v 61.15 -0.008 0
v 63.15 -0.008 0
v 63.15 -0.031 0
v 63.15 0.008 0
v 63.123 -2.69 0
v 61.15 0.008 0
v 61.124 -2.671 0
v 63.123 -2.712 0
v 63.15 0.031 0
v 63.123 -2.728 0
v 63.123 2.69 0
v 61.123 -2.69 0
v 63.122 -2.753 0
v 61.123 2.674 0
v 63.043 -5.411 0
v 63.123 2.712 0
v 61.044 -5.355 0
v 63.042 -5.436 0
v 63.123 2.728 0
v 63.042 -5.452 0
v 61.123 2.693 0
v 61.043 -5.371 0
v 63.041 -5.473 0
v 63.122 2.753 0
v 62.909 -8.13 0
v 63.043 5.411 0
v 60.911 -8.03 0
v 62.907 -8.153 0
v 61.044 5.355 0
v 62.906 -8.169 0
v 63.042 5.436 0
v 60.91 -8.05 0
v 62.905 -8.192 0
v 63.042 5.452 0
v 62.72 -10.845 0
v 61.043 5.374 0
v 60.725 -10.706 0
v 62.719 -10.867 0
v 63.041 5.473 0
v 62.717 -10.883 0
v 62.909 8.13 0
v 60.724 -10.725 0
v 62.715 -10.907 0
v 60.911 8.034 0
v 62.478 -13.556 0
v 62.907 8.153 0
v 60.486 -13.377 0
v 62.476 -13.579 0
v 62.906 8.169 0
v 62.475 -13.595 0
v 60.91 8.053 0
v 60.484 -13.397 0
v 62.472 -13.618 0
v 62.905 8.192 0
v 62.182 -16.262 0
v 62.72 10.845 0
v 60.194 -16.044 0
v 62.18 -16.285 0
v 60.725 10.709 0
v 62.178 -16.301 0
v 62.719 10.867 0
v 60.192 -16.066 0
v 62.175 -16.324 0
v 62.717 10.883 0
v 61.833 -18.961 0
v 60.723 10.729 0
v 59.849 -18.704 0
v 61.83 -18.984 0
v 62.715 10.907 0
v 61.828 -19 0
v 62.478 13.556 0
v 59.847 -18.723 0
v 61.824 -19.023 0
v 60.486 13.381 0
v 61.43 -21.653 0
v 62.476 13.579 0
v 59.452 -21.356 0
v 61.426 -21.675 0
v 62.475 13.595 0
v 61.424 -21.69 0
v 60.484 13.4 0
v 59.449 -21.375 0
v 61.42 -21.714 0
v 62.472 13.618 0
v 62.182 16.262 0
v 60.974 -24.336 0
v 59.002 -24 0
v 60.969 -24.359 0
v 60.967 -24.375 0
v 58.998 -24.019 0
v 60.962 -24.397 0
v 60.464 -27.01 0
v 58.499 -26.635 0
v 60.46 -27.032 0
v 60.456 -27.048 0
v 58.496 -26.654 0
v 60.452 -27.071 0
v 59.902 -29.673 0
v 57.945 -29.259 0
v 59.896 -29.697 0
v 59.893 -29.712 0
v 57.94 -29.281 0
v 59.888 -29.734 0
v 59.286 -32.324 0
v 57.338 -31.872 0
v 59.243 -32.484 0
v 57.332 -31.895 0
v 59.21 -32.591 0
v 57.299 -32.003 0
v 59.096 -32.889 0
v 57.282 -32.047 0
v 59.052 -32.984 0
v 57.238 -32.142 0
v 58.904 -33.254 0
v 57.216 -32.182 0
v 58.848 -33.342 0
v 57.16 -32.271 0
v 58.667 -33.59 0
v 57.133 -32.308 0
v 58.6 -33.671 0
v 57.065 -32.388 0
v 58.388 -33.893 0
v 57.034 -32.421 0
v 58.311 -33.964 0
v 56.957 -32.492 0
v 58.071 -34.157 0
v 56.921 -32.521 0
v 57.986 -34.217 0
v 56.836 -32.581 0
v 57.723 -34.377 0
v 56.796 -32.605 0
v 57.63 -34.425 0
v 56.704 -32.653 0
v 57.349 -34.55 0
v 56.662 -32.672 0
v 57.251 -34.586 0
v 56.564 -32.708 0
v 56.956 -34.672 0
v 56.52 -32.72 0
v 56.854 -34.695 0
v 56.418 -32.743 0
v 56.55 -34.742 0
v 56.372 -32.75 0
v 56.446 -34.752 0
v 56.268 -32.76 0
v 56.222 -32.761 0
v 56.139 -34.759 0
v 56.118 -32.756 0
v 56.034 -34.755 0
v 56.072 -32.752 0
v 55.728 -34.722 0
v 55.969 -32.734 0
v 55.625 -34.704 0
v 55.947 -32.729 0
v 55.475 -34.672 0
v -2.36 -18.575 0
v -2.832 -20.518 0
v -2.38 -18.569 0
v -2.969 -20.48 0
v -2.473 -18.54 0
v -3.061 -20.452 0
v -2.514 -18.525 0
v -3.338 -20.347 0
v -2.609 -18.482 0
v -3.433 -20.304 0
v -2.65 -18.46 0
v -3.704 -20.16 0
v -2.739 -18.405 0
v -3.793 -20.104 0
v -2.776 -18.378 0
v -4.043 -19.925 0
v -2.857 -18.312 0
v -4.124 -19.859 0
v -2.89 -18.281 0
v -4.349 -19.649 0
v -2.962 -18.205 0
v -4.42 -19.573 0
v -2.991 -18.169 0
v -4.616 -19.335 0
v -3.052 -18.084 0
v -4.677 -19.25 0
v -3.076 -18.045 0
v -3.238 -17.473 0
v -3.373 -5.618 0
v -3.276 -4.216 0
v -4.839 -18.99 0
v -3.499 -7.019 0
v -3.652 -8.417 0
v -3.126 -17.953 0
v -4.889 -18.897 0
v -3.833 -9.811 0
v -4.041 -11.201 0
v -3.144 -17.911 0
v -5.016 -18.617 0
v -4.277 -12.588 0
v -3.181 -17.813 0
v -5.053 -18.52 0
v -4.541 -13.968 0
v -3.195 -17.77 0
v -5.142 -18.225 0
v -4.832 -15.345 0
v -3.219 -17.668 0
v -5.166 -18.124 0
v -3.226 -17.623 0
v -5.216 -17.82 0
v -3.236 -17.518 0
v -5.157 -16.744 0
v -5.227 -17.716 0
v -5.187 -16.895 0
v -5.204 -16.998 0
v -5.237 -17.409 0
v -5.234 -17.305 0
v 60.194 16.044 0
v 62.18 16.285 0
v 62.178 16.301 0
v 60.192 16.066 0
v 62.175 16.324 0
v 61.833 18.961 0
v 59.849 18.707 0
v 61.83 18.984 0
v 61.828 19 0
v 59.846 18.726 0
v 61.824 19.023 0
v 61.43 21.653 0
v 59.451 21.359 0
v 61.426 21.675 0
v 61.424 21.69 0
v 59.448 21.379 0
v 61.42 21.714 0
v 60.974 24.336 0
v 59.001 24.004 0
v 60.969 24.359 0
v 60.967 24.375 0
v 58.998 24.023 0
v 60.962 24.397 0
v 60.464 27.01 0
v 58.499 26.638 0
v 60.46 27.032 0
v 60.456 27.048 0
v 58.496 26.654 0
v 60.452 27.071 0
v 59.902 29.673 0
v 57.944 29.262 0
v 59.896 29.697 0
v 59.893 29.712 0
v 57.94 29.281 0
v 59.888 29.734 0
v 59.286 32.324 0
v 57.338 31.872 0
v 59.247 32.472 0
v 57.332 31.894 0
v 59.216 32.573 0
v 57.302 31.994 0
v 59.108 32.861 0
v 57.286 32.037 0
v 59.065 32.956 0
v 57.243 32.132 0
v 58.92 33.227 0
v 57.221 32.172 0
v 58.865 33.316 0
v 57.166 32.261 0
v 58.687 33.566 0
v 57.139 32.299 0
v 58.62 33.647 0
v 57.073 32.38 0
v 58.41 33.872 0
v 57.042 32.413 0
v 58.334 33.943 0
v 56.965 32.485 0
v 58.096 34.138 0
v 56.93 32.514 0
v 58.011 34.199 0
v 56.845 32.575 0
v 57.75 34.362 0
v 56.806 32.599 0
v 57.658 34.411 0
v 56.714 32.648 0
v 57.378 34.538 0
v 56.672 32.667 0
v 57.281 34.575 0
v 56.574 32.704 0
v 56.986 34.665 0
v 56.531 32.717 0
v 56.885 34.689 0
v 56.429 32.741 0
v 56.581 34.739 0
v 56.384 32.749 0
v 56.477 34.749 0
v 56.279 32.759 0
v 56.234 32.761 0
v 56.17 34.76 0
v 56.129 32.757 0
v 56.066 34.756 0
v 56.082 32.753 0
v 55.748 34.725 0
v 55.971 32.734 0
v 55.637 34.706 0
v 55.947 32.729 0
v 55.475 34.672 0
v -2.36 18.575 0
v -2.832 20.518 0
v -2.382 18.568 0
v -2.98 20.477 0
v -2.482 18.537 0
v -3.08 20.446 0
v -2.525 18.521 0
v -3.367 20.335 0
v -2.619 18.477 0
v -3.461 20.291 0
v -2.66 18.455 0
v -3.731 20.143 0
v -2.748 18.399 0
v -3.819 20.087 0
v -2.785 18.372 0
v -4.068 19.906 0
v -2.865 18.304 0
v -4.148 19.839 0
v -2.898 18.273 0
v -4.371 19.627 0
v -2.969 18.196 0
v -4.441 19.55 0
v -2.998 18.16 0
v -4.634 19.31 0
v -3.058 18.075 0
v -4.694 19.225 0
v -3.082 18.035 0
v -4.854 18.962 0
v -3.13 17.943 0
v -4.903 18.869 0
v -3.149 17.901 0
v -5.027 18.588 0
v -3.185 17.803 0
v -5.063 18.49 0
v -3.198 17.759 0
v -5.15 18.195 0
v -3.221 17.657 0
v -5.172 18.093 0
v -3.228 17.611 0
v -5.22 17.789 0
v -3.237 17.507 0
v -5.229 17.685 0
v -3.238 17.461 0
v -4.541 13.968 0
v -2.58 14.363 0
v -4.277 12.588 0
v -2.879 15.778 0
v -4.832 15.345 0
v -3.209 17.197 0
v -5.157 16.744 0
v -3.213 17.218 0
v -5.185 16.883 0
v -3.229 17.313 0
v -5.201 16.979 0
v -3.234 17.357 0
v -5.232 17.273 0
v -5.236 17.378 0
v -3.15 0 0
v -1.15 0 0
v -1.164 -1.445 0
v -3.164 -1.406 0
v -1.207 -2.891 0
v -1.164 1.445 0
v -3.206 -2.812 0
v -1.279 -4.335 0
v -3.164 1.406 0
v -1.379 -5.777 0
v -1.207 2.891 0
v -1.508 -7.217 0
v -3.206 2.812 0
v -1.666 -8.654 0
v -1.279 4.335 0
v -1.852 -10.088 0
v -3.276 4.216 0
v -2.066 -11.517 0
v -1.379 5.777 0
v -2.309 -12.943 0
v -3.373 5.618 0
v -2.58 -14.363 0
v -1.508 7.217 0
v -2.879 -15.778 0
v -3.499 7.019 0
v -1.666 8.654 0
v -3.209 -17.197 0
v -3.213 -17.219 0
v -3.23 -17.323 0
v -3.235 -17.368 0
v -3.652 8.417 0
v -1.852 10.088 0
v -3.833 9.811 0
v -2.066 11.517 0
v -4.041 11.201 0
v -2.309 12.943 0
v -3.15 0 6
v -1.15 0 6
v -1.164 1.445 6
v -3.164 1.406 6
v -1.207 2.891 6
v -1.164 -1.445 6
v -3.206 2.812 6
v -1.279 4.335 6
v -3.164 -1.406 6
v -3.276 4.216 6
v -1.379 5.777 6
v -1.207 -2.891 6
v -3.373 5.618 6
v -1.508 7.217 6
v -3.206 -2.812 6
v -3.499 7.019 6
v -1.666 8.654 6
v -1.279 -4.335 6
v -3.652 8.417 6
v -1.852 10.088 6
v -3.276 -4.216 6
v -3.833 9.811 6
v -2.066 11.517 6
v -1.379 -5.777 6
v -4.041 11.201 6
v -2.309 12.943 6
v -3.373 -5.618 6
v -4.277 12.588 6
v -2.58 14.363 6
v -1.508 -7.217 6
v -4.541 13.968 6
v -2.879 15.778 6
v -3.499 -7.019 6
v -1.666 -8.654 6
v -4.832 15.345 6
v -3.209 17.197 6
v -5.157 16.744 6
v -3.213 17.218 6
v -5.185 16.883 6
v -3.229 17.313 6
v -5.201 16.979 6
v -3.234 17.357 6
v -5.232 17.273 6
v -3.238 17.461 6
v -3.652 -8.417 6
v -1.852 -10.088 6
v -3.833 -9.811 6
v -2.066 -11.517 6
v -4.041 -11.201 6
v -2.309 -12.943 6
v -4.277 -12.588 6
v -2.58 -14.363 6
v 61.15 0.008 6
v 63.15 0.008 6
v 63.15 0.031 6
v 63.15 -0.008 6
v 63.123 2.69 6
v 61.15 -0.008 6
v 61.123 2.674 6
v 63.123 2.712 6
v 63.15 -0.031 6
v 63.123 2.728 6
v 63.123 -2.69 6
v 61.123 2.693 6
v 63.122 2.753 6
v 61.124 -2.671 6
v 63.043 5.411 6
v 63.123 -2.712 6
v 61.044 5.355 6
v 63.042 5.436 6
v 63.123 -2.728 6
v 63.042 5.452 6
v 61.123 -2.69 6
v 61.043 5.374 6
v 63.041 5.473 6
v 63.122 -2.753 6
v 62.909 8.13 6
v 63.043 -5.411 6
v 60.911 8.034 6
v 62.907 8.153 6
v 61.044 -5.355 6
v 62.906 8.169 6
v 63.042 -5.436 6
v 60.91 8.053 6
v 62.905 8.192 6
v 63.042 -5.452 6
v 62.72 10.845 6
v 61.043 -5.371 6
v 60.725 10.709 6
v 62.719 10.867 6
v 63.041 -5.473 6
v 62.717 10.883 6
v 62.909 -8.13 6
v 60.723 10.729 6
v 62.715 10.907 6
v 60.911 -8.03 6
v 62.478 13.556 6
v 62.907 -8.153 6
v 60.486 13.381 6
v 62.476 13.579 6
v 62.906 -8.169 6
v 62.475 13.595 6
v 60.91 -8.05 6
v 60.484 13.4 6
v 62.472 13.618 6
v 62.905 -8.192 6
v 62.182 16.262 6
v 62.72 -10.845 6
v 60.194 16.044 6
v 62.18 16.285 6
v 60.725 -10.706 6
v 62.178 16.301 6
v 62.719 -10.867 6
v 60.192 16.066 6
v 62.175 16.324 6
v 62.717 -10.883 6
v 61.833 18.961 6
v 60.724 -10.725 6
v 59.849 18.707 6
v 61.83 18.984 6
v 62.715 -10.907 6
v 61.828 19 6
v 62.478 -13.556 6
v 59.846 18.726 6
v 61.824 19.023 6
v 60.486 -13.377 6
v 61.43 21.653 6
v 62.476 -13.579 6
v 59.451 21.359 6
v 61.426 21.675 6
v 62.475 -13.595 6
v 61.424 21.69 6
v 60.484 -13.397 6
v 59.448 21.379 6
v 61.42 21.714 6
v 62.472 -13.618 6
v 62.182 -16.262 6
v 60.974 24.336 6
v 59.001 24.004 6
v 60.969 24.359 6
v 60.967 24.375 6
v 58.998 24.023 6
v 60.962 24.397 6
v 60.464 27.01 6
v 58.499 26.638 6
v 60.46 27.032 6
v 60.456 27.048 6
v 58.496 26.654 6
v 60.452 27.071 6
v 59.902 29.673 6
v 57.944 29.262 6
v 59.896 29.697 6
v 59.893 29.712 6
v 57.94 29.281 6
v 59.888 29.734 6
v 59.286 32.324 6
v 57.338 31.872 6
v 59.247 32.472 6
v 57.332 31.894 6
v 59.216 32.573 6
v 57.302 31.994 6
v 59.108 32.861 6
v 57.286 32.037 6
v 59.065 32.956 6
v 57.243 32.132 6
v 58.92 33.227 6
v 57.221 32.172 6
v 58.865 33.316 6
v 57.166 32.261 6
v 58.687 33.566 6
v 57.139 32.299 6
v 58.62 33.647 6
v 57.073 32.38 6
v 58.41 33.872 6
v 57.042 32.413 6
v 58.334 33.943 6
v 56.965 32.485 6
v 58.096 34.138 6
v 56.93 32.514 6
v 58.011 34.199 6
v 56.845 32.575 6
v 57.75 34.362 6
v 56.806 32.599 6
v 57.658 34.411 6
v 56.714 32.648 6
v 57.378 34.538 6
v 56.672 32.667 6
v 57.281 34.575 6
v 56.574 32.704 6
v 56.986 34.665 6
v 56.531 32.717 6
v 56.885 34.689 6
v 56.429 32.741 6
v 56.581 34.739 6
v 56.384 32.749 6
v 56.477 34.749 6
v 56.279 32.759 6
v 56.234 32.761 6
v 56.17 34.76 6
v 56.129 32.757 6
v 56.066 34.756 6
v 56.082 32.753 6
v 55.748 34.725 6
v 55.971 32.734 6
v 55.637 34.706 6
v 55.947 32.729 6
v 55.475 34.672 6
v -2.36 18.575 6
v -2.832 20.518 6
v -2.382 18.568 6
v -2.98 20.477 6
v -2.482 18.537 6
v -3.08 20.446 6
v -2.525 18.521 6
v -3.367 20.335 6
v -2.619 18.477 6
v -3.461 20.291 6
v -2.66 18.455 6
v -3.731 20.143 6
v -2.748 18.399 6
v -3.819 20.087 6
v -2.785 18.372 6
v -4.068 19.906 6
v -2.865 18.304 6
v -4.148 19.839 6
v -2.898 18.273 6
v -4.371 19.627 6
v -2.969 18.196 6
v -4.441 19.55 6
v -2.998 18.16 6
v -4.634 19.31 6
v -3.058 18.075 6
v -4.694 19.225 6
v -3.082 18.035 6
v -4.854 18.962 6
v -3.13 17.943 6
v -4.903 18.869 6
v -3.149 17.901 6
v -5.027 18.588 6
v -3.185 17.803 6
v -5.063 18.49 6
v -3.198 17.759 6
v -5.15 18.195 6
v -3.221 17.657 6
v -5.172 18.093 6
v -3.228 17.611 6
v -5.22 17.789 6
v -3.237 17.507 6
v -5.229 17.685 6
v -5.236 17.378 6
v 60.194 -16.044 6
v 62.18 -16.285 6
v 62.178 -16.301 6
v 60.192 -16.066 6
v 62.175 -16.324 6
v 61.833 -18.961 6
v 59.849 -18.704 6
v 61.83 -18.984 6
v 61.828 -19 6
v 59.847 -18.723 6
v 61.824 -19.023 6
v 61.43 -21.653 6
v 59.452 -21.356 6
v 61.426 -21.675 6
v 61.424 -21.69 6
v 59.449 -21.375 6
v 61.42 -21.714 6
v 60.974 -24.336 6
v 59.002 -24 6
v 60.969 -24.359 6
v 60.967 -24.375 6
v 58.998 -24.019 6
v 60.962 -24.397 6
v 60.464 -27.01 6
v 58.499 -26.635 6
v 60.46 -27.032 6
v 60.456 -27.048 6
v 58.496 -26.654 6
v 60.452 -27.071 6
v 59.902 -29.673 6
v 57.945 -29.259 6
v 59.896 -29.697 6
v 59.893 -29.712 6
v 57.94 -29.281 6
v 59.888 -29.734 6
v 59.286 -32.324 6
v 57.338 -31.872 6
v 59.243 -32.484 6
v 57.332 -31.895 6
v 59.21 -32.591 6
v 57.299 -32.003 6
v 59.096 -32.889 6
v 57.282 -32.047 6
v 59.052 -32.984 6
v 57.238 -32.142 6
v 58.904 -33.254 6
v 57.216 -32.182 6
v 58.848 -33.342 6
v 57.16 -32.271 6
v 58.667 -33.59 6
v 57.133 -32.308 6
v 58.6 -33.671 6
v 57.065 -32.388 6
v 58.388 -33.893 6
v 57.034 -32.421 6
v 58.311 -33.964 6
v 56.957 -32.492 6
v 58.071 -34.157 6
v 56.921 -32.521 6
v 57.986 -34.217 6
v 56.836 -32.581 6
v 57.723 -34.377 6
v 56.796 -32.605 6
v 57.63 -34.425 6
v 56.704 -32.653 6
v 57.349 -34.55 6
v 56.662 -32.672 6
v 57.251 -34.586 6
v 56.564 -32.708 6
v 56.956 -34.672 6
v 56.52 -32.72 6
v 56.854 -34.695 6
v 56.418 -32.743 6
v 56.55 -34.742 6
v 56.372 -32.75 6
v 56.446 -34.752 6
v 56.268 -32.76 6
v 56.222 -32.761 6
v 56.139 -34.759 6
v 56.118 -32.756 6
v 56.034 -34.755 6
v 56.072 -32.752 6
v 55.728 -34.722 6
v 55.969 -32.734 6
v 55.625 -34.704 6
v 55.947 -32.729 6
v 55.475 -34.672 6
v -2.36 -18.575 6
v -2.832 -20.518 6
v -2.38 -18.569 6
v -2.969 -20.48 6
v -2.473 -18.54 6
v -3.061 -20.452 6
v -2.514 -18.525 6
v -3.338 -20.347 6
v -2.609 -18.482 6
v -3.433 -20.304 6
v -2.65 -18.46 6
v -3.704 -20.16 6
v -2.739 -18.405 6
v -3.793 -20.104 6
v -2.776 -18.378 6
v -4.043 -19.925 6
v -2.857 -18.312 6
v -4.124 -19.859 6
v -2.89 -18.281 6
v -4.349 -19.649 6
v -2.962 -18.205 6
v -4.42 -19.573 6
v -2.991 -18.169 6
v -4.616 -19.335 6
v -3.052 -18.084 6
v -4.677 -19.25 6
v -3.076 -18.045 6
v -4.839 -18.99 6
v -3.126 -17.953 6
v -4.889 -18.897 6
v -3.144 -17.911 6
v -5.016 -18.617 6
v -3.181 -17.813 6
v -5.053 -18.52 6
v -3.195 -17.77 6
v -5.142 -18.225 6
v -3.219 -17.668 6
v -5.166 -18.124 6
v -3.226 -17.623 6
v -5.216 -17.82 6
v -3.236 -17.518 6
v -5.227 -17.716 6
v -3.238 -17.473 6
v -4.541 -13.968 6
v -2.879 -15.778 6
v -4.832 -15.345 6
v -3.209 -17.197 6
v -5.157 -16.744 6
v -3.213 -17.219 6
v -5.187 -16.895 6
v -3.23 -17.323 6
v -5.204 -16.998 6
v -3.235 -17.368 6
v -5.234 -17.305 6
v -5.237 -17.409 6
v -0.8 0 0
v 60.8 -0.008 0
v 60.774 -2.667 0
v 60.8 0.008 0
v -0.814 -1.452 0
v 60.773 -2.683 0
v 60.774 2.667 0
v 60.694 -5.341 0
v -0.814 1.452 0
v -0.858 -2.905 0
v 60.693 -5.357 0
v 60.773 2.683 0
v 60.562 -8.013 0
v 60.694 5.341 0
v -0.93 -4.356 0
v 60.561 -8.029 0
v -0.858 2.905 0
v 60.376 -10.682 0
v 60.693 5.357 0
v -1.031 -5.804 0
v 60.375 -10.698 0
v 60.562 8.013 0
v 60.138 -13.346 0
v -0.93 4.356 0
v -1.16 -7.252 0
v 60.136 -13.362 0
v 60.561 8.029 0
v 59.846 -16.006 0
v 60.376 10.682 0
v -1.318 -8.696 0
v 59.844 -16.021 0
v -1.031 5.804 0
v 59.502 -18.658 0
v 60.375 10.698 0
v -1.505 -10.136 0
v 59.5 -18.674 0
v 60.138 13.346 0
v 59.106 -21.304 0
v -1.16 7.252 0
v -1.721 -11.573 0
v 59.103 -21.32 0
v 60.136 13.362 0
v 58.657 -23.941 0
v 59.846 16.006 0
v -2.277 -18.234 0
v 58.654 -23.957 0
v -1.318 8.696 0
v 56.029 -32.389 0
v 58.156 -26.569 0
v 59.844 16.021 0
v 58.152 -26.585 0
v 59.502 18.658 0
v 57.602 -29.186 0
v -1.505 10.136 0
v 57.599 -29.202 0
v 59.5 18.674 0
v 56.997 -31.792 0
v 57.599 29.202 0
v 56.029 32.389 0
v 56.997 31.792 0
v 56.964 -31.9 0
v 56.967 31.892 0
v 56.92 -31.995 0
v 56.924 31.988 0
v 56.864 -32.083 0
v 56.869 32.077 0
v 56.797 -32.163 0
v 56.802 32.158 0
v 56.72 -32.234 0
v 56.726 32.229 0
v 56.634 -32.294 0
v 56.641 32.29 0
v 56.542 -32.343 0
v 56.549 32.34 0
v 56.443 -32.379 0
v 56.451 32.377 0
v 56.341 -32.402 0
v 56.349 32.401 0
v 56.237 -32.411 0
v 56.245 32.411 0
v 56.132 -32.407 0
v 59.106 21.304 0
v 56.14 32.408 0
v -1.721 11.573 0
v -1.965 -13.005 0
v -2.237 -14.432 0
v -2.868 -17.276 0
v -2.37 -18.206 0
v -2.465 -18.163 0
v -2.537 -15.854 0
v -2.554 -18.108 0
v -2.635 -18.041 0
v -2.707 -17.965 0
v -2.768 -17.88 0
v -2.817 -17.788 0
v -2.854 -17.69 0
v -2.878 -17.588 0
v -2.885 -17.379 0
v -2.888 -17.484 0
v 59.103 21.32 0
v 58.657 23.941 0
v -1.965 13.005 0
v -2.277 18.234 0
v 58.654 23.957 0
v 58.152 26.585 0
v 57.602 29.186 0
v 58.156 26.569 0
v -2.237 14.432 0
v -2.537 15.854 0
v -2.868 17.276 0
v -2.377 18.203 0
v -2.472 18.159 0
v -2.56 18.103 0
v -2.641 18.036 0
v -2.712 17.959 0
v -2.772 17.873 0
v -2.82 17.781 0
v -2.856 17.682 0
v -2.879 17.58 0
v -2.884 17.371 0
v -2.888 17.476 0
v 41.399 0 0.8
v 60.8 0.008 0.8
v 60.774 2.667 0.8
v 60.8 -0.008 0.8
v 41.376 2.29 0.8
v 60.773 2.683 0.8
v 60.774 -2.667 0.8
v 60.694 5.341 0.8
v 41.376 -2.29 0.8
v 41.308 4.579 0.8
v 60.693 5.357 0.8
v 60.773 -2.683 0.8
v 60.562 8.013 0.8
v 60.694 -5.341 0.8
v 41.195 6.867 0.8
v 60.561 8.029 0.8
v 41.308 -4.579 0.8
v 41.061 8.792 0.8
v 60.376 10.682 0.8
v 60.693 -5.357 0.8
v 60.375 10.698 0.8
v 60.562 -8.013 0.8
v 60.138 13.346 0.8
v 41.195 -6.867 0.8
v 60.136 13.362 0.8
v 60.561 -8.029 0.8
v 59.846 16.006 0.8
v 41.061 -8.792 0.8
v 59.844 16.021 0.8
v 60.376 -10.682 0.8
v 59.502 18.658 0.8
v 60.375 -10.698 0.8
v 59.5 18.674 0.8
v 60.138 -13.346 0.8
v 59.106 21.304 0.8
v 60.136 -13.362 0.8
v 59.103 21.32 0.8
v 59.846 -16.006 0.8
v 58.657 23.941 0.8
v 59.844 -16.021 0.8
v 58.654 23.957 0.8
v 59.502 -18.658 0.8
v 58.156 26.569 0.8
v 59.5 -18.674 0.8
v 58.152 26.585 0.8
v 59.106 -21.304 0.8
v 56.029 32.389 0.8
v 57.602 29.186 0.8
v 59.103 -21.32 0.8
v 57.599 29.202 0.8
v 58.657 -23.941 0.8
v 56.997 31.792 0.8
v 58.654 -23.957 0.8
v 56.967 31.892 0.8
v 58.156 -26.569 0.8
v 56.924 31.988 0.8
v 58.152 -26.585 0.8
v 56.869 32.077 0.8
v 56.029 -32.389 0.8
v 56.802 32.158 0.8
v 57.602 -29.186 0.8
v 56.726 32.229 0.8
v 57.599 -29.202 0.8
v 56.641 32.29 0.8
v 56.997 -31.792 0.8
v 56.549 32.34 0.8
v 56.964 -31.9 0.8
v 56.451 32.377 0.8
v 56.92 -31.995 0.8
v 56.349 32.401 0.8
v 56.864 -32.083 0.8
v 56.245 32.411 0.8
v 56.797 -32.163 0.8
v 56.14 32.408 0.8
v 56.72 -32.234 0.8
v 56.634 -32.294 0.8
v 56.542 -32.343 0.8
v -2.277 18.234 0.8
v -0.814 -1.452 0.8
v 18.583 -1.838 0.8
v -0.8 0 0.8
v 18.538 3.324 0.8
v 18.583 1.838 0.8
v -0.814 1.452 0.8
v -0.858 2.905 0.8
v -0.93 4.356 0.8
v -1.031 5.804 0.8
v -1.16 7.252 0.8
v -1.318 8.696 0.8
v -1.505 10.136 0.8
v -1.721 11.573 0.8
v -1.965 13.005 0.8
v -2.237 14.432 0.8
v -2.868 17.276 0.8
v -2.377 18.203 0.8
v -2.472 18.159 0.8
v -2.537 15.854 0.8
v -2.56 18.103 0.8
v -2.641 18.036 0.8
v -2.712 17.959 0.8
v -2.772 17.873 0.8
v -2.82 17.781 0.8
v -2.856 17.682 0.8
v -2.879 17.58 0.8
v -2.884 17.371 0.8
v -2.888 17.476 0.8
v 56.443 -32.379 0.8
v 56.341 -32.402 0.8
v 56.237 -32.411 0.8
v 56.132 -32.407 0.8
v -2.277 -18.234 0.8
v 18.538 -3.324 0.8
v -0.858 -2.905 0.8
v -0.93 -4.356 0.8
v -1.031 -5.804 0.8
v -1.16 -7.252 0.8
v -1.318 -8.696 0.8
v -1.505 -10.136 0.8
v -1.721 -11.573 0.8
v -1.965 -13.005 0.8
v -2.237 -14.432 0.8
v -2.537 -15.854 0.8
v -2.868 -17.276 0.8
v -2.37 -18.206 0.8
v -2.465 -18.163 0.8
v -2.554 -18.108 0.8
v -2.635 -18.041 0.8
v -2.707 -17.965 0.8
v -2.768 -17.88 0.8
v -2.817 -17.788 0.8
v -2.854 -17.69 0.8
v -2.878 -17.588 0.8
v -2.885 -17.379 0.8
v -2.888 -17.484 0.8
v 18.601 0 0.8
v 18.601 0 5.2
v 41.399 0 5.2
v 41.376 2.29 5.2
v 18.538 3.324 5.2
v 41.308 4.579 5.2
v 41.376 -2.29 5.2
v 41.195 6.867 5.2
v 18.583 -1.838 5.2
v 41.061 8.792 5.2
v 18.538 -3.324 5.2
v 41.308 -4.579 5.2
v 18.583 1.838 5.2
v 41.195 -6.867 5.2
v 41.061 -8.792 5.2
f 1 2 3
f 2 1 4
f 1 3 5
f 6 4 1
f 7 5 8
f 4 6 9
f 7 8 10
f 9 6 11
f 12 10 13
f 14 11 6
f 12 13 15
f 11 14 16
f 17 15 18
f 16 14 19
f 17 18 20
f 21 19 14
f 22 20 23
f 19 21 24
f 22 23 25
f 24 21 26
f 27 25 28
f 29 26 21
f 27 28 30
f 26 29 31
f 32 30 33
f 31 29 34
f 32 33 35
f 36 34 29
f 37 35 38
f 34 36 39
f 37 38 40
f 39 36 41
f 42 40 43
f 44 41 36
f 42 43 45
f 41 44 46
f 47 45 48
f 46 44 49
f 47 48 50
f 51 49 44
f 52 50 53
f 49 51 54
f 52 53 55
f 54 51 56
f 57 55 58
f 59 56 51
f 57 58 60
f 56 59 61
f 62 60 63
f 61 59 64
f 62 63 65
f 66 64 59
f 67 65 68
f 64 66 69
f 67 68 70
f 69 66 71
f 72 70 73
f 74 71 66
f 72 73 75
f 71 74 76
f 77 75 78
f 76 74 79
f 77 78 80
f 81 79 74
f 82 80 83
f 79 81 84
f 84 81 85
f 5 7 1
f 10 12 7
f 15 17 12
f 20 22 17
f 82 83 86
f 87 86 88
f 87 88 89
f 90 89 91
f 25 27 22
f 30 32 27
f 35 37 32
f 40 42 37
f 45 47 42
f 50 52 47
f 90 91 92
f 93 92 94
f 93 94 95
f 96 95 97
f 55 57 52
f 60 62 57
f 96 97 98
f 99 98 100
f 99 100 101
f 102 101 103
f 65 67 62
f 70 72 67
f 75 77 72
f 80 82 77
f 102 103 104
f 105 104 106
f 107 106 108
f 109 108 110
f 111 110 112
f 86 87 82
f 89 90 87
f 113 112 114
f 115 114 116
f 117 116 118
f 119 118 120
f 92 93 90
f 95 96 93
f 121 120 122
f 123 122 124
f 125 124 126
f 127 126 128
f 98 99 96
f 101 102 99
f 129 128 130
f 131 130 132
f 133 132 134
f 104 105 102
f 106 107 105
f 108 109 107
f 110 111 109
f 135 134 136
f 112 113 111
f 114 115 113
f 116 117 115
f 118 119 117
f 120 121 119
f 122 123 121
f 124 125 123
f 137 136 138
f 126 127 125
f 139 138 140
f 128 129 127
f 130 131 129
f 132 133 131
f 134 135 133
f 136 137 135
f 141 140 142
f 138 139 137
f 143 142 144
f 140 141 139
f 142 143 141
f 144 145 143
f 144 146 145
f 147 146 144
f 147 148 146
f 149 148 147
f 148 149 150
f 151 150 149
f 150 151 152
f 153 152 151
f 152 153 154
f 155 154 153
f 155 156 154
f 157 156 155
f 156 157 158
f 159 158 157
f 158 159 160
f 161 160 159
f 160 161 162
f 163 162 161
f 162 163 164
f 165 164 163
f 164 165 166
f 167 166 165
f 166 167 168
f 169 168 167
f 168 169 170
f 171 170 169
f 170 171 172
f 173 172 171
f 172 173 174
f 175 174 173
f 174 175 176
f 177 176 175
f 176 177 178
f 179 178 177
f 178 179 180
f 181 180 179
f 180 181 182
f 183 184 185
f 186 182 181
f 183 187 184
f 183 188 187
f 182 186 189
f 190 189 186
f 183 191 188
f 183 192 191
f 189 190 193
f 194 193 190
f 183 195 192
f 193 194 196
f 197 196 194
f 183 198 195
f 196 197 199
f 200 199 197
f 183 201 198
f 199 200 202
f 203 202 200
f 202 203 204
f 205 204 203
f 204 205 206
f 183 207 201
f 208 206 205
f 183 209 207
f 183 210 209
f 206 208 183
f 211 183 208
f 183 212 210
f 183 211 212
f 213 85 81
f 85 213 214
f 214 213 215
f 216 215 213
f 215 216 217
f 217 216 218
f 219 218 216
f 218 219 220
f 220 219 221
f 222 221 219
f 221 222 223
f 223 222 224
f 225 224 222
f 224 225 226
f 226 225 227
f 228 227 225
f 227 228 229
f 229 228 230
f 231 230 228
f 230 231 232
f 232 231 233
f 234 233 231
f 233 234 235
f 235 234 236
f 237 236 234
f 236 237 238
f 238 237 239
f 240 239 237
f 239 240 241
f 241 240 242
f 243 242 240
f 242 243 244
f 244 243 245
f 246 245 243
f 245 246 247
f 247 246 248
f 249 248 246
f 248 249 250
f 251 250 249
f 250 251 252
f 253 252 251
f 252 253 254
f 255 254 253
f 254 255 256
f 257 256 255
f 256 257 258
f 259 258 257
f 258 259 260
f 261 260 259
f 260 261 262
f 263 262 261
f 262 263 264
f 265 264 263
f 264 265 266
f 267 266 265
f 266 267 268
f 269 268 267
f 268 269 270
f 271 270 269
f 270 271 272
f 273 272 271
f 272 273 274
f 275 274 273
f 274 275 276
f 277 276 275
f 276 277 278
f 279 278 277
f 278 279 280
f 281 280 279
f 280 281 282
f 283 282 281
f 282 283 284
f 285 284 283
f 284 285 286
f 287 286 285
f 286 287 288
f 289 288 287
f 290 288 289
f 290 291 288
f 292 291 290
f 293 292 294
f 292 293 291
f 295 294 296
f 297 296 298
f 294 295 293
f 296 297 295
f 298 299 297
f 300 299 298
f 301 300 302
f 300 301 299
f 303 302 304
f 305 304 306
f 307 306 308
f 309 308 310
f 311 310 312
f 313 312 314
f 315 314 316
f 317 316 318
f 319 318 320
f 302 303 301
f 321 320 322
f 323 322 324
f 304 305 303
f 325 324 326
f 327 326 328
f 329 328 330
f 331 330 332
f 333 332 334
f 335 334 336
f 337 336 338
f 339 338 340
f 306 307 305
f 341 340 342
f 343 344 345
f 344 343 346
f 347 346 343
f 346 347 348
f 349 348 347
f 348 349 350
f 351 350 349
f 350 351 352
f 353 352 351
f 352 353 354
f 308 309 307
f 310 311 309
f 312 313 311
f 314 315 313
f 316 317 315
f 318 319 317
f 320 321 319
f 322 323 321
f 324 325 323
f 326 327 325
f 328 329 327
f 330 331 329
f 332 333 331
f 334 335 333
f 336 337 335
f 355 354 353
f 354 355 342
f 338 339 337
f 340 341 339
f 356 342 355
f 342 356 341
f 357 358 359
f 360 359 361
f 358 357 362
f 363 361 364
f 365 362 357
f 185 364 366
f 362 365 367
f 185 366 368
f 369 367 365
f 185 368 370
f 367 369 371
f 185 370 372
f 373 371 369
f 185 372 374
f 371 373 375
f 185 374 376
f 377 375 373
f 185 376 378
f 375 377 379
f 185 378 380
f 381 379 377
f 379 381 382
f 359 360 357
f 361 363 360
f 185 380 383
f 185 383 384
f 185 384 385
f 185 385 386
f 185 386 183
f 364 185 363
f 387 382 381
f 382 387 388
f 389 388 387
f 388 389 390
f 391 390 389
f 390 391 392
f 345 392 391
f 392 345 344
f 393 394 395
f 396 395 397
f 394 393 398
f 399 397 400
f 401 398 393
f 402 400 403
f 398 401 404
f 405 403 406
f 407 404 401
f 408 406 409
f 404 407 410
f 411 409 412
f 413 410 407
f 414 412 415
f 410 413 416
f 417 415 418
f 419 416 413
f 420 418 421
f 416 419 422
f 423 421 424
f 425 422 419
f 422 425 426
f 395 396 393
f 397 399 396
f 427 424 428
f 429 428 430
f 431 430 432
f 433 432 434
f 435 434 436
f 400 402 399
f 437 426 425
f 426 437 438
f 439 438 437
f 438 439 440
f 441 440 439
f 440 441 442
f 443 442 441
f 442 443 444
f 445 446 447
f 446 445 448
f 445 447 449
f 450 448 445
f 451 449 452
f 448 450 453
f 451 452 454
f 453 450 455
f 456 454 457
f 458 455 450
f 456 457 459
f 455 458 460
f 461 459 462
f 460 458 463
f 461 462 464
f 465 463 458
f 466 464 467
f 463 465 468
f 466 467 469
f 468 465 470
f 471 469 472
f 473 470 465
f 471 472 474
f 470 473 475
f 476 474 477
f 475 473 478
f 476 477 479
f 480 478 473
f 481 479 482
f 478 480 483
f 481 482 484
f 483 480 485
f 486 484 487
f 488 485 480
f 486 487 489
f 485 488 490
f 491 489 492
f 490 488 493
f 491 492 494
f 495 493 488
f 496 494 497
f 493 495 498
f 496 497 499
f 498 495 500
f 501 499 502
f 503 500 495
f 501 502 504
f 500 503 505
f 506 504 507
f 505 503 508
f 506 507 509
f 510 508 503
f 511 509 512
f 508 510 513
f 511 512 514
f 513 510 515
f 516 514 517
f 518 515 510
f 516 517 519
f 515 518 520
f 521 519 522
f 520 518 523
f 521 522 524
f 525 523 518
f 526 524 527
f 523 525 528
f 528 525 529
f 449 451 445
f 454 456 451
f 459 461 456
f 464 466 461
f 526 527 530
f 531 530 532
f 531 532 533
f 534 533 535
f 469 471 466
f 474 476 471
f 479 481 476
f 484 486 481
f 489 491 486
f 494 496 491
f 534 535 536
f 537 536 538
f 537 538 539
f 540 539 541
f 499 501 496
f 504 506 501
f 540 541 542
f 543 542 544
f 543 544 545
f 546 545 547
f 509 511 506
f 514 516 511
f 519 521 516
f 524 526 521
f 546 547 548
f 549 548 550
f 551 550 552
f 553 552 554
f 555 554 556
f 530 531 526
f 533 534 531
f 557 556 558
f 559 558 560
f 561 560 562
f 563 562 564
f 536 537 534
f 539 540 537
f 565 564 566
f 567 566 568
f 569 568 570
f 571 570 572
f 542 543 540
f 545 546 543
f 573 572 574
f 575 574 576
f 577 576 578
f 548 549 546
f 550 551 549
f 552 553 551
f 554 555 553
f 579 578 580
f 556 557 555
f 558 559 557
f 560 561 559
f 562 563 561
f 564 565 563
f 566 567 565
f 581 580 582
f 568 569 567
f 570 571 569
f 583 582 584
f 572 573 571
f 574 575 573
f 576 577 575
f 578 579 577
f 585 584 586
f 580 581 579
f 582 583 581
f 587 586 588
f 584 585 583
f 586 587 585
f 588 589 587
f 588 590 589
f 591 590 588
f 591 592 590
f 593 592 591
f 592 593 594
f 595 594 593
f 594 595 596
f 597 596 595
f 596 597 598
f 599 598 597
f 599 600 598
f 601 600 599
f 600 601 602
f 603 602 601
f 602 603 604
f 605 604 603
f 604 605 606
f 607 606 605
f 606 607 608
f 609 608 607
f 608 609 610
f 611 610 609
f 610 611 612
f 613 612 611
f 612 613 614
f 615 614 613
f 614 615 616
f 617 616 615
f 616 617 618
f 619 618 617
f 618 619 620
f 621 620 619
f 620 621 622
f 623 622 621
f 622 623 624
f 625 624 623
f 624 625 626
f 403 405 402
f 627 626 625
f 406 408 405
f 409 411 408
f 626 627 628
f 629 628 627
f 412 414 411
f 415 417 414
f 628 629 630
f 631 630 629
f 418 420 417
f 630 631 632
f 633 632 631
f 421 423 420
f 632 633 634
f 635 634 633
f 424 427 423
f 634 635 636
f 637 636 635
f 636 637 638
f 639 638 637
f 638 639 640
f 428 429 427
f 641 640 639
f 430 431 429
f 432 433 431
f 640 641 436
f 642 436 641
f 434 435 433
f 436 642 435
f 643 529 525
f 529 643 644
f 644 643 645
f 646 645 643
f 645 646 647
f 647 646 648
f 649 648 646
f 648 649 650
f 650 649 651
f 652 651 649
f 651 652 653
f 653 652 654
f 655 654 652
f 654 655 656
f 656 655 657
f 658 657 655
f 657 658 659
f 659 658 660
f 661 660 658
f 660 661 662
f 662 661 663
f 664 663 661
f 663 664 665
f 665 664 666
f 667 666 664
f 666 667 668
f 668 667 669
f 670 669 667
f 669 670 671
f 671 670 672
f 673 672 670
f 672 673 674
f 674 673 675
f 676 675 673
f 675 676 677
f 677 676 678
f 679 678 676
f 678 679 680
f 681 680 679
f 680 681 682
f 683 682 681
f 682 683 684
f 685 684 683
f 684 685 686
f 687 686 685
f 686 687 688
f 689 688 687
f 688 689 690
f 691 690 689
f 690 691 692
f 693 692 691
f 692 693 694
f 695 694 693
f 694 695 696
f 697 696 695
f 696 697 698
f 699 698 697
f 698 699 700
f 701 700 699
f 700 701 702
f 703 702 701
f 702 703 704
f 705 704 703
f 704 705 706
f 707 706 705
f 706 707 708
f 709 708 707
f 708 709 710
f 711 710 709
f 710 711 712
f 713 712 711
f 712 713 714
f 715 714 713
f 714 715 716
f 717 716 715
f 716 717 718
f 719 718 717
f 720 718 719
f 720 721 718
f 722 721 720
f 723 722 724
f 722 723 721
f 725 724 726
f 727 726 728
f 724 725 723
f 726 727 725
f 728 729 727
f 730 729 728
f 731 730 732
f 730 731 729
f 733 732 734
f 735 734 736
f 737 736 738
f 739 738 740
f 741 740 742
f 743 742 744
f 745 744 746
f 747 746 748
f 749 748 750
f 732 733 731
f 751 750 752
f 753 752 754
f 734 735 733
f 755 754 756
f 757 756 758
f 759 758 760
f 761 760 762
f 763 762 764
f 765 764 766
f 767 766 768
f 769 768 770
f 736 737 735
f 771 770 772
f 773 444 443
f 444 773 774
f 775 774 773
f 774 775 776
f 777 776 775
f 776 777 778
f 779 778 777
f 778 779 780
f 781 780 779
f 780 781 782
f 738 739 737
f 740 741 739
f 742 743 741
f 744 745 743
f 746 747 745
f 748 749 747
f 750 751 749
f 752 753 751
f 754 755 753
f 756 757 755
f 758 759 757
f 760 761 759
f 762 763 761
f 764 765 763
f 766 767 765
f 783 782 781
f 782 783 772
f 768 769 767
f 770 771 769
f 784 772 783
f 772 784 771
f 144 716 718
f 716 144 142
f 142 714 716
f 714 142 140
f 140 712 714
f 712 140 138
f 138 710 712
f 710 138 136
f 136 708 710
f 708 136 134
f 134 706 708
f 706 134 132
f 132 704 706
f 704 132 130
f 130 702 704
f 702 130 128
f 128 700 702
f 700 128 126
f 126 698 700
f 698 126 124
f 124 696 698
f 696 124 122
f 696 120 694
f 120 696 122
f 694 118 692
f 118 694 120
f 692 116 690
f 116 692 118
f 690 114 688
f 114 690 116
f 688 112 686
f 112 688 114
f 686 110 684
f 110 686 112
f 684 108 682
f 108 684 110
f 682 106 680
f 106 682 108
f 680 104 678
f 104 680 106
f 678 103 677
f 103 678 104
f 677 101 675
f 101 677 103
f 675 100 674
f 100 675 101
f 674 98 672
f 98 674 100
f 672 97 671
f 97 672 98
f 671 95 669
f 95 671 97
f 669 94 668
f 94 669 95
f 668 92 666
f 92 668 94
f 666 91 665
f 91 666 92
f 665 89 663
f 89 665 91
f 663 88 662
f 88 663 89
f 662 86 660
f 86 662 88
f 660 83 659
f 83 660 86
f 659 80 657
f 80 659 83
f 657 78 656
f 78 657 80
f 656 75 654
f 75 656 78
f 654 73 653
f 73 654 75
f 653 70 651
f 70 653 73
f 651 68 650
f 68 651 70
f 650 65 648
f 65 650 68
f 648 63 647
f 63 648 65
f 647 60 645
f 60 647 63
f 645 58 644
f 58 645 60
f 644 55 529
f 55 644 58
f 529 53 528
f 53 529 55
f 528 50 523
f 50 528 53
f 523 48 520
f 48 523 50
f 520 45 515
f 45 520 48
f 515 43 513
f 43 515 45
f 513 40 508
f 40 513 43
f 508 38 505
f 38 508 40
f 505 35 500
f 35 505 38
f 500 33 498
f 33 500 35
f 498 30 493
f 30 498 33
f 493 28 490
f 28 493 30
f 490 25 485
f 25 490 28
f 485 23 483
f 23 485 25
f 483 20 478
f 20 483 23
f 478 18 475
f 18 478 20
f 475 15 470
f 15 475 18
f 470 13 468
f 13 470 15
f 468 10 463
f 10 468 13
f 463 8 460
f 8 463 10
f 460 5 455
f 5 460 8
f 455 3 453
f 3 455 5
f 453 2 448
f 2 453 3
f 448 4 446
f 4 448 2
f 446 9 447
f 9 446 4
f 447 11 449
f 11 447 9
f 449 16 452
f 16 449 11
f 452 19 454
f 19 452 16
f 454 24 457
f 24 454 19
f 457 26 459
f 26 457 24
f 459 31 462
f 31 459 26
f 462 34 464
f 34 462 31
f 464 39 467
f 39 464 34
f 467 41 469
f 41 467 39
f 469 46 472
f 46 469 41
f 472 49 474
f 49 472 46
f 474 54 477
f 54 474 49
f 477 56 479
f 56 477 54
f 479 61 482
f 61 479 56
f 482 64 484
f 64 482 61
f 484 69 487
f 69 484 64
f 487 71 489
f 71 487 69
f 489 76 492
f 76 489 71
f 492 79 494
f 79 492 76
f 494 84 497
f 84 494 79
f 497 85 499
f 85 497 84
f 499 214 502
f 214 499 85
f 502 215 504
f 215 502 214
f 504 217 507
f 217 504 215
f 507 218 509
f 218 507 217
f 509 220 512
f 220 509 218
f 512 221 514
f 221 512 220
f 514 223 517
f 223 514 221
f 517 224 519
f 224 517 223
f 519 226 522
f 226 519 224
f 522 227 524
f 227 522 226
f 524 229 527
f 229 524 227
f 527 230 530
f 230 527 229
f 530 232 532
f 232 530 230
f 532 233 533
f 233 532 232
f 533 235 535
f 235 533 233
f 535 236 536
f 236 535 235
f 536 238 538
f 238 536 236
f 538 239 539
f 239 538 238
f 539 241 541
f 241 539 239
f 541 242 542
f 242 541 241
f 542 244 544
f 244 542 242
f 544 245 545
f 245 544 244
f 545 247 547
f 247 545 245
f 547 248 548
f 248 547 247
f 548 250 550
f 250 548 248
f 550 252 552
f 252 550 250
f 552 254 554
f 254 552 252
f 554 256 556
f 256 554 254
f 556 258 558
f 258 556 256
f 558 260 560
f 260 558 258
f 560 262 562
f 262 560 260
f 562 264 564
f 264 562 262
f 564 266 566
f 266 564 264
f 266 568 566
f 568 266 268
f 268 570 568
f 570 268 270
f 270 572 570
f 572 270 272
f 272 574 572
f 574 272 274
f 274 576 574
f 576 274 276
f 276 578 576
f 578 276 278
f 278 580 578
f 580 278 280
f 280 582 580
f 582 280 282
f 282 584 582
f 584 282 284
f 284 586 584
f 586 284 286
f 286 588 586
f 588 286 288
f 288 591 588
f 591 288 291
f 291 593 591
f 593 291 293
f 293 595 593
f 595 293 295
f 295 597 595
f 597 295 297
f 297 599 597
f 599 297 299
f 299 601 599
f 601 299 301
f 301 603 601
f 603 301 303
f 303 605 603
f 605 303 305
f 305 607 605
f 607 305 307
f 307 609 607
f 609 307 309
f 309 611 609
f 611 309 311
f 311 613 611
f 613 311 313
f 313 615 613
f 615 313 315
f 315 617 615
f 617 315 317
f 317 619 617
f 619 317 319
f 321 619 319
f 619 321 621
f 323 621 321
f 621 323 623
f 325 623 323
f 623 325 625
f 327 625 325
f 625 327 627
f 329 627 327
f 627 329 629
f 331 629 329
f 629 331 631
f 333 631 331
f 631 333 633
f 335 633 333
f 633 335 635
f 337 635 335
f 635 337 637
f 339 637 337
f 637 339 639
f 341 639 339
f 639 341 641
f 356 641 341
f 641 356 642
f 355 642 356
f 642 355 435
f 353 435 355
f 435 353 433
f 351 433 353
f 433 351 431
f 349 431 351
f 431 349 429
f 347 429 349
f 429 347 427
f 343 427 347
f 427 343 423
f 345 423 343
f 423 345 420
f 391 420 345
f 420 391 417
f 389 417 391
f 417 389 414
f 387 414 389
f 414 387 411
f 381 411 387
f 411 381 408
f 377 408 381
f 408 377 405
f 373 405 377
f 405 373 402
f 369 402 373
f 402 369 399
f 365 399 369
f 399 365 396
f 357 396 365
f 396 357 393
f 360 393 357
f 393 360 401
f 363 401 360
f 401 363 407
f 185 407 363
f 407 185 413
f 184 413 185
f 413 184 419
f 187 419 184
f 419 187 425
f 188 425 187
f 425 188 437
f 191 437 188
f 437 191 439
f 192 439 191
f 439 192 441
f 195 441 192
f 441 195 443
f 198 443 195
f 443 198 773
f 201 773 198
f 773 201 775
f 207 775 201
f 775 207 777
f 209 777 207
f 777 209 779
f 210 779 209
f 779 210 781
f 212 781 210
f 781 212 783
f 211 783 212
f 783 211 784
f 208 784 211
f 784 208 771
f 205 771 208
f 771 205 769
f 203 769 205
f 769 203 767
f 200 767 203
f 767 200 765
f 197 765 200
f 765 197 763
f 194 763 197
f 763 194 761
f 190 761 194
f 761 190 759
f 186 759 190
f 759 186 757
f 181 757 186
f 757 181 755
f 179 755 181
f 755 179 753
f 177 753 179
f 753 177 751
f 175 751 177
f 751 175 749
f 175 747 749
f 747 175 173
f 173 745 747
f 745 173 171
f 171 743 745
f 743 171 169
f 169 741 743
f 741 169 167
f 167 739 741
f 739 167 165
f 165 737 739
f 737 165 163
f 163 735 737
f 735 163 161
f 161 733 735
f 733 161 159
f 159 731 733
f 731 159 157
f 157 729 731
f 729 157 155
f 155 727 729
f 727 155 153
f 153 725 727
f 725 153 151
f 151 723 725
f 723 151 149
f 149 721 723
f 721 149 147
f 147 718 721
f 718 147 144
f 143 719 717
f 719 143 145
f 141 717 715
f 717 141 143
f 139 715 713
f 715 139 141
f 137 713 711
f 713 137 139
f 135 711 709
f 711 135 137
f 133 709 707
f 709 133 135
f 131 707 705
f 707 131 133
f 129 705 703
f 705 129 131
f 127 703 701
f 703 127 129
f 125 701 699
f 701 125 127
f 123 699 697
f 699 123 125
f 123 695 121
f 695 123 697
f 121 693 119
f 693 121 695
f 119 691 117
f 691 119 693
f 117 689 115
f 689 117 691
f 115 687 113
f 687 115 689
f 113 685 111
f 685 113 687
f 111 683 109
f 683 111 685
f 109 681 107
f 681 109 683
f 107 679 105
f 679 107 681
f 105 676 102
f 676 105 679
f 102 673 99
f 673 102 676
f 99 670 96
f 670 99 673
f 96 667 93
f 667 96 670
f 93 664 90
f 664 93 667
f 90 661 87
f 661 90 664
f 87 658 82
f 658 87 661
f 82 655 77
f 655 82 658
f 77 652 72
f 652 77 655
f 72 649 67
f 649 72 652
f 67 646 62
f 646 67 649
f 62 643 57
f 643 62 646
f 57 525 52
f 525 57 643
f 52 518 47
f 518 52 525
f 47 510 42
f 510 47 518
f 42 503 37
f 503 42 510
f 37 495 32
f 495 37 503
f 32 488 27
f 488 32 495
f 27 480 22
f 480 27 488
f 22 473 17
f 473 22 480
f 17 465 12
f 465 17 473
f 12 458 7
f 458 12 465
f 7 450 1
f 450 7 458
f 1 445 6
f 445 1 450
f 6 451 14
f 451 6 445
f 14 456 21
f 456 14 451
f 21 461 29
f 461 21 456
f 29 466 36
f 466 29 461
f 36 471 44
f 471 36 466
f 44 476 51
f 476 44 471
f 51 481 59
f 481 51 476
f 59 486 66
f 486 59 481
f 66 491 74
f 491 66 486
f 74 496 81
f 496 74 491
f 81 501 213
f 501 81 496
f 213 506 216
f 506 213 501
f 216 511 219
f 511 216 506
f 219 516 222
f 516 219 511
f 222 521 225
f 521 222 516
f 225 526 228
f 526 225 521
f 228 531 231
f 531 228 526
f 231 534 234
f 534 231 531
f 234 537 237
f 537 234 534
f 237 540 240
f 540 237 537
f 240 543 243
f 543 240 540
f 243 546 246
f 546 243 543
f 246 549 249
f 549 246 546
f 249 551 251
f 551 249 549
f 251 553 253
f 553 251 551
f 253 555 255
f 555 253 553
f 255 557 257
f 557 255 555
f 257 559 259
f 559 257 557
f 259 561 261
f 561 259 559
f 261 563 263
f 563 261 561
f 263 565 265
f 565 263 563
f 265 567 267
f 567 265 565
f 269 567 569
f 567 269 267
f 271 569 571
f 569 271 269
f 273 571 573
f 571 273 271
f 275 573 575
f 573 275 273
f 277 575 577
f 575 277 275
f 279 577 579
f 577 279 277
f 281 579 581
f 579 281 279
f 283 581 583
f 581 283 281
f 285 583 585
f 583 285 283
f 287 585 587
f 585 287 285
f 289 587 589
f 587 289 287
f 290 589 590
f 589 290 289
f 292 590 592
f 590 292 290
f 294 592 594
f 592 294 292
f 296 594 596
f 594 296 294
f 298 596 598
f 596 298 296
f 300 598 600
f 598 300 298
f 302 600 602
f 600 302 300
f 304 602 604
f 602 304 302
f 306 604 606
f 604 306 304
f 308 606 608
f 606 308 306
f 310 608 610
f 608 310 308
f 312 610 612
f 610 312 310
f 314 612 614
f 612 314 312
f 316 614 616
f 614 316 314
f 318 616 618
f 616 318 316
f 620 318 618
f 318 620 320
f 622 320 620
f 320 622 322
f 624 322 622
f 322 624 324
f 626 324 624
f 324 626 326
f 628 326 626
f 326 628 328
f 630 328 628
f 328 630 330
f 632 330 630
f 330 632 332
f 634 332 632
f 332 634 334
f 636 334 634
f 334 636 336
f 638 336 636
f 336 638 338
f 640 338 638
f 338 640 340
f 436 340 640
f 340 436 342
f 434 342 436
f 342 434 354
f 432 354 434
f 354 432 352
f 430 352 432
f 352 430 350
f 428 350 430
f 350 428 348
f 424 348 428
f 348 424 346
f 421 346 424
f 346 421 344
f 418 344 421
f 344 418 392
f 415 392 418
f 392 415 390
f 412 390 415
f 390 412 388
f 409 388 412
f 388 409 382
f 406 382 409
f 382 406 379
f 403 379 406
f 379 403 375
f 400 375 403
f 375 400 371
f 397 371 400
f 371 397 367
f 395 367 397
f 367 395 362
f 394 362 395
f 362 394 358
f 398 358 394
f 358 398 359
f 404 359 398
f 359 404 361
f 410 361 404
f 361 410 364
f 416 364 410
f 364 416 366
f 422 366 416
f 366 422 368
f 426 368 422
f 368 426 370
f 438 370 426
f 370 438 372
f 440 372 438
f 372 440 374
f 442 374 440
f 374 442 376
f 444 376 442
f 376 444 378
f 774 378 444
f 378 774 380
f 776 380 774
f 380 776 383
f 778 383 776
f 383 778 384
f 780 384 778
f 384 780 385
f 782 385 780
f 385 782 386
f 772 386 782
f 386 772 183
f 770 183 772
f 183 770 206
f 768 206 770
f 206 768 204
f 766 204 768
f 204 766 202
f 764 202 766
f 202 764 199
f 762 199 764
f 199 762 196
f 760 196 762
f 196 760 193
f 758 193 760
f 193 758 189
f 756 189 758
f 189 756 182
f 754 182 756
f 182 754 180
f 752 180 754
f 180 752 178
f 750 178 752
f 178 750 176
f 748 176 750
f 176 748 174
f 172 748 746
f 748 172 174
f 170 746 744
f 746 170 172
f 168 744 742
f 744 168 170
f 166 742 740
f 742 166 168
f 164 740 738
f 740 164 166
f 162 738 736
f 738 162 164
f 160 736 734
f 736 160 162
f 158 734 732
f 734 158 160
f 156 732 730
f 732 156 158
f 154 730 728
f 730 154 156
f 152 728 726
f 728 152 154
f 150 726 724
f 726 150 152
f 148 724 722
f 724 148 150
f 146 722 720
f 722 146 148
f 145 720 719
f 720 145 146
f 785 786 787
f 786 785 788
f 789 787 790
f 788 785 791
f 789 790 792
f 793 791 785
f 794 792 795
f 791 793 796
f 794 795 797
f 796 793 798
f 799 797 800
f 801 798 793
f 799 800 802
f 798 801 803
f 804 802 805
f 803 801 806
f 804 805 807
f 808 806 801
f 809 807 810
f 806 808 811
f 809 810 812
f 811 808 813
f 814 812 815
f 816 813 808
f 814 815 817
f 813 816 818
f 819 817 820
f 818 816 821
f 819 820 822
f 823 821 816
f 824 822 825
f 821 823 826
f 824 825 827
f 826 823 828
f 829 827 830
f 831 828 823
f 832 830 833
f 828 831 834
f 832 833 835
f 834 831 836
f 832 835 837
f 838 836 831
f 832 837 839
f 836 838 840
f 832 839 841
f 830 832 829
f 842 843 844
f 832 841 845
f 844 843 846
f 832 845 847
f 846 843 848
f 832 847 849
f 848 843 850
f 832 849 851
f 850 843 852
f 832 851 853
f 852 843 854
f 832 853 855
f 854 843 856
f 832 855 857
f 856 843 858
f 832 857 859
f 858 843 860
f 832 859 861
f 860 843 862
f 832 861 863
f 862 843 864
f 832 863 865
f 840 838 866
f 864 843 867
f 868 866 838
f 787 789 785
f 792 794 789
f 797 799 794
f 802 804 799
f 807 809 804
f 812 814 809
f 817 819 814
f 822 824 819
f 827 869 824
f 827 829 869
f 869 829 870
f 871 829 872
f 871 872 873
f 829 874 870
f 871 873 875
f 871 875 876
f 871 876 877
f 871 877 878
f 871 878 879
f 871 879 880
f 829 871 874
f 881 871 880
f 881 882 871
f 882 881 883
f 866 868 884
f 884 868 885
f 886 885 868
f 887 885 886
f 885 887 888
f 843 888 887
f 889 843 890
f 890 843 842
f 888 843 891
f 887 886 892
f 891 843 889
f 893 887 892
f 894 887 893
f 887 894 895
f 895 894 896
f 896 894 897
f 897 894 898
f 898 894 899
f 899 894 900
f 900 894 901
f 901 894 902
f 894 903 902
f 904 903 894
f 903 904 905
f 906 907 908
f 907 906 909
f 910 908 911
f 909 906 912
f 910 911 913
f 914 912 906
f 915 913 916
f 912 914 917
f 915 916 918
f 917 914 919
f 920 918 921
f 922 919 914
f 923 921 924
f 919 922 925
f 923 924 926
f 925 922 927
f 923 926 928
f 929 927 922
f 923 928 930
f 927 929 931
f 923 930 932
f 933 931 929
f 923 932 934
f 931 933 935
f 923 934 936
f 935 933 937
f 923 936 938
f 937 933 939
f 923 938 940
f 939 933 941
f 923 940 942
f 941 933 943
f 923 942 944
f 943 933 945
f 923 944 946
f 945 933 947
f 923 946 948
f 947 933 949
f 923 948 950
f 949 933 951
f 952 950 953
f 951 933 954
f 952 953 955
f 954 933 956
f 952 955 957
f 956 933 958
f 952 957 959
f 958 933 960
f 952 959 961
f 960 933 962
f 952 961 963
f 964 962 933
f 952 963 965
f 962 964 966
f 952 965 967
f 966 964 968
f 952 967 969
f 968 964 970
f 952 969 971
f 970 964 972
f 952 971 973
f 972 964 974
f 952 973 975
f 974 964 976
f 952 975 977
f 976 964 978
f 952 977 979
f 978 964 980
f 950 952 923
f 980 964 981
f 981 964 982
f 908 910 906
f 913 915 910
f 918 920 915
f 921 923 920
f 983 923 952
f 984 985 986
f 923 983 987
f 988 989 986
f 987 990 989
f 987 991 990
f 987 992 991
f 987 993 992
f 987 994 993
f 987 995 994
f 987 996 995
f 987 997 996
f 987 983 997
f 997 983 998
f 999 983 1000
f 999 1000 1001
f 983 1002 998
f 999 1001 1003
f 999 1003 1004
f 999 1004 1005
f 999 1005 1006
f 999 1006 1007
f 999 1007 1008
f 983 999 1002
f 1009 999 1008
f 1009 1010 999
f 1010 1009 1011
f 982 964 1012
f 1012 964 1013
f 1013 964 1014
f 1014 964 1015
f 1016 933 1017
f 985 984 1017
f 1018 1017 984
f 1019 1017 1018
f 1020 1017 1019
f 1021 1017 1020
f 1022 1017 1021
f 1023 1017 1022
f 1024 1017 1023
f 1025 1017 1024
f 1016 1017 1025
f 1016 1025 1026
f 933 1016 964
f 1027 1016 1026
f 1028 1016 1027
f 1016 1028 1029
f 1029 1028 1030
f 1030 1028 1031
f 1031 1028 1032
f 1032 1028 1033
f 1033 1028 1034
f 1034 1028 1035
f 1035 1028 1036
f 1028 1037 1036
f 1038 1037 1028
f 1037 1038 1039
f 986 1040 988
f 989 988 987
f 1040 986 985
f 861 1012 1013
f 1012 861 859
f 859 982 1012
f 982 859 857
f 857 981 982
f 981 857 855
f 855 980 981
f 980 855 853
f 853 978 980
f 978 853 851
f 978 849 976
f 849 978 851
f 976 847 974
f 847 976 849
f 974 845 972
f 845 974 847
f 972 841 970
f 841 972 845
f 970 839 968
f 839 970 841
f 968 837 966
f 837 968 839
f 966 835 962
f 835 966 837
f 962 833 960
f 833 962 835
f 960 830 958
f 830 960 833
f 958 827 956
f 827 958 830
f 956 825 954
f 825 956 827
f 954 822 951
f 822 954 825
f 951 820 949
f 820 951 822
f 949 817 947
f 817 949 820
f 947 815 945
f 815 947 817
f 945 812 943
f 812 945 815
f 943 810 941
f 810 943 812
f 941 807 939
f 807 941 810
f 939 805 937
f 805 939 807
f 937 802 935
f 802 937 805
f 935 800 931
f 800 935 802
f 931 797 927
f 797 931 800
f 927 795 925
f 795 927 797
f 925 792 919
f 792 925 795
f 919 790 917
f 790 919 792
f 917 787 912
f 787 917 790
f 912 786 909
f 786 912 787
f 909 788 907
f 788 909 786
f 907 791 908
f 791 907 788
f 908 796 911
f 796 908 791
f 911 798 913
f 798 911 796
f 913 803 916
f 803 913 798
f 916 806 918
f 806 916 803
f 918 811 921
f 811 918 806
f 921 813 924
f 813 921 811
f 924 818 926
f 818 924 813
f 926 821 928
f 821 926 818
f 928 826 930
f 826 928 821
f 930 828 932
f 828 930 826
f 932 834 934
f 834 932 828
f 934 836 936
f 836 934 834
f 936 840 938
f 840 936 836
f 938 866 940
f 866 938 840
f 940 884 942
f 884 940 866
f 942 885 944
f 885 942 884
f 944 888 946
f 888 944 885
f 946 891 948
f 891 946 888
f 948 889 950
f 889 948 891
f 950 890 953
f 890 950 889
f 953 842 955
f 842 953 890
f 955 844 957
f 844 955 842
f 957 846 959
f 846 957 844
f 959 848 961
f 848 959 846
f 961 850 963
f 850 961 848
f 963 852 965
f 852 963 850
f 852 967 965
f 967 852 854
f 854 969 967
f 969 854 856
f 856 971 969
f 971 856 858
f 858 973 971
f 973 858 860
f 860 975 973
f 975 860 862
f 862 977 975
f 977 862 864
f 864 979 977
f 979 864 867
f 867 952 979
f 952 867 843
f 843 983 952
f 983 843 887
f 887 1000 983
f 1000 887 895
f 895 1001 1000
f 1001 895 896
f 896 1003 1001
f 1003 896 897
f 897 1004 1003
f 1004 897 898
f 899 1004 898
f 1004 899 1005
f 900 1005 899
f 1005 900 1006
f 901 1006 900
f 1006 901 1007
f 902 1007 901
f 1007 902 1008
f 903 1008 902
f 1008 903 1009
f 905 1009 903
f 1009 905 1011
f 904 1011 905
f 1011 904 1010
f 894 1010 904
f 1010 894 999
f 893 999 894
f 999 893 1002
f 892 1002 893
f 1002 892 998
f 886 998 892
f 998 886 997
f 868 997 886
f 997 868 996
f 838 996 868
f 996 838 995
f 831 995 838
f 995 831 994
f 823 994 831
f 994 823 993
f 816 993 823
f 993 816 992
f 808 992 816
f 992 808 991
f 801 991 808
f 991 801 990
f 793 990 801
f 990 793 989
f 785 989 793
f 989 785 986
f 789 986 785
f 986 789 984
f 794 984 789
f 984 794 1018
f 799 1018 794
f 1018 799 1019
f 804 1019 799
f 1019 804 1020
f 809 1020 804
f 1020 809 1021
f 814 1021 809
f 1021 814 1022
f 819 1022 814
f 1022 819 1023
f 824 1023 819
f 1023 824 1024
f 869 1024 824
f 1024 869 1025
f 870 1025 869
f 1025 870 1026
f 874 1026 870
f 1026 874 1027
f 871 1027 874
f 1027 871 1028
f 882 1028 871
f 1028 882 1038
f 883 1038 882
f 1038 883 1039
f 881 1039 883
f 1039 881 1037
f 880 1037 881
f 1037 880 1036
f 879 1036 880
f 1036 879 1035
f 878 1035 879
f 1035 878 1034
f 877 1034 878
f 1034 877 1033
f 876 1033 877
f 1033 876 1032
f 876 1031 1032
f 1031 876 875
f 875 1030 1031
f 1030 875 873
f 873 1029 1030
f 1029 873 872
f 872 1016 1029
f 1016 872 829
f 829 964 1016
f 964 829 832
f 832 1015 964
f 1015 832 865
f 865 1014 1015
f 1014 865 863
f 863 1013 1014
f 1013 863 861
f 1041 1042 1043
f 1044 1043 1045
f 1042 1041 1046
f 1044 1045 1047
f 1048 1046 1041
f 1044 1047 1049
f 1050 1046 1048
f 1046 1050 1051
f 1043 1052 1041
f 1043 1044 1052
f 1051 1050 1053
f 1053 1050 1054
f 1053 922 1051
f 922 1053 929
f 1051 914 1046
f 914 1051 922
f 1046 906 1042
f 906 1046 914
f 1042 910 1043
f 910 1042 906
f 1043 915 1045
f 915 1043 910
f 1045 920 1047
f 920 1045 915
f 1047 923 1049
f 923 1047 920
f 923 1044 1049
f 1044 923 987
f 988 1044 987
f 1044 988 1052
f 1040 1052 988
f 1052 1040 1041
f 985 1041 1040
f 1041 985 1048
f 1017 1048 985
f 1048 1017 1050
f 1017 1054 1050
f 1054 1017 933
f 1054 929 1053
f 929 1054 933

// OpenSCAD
// Gen-DG — fit coupon (bay part): O20/O5 THROUGH pockets at carrier thickness (test on a steel offcut), 608 seat,
// D-flat bore, gap shim, and one bobbin-bay slice (bobbin footprint + bay_clear) to test former fit.
include <parameters.scad>;
$fn = 48;
// D-flat keyed bore: flat faces +X (angle 0 = magnet pocket 0 = index notch)
module dflat_bore(h) {
    intersection() {
        cylinder(d=shaft_bore, h=h);
        translate([-shaft_bore, -shaft_bore, 0]) cube([shaft_bore + dflat_x, 2*shaft_bore, h]);
    }
}
module sector_2d(r_in, r_out, ang) {
    polygon([
        for (a = [-ang/2 : ang/24 : ang/2]) [r_in*cos(a), r_in*sin(a)],
        for (a = [ang/2 : -ang/24 : -ang/2]) [r_out*cos(a), r_out*sin(a)]
    ]);
}
module footprint_2d() { offset(r=wall) sector_2d(coil_id_r, coil_od_r, span_deg); }
module hub_2d()       { offset(delta=-coil_core_inset) sector_2d(coil_id_r, coil_od_r, span_deg); }

// bay slice at FULL stator thickness with one bobbin BASE printed IN PLACE inside it (bay_clear gap): this is the
// print-in-place test for the one-plate stator. After printing, the base must pop out with finger pressure; if it is fused,
// print coil_former.stl separately (print-packs/parts/) instead of using the in-place bases.
translate([-coil_id_r, 0, 0]) {
    difference() {
        linear_extrude(stator_thick) offset(r=bay_clear + 2) footprint_2d();
        translate([0, 0, -0.1]) linear_extrude(stator_thick + 0.2) offset(r=bay_clear) footprint_2d();
    }
    union() {
        linear_extrude(flange_t) footprint_2d();
        translate([0, 0, flange_t - 0.01]) linear_extrude(former_web + 0.01) hub_2d();
    }
}
